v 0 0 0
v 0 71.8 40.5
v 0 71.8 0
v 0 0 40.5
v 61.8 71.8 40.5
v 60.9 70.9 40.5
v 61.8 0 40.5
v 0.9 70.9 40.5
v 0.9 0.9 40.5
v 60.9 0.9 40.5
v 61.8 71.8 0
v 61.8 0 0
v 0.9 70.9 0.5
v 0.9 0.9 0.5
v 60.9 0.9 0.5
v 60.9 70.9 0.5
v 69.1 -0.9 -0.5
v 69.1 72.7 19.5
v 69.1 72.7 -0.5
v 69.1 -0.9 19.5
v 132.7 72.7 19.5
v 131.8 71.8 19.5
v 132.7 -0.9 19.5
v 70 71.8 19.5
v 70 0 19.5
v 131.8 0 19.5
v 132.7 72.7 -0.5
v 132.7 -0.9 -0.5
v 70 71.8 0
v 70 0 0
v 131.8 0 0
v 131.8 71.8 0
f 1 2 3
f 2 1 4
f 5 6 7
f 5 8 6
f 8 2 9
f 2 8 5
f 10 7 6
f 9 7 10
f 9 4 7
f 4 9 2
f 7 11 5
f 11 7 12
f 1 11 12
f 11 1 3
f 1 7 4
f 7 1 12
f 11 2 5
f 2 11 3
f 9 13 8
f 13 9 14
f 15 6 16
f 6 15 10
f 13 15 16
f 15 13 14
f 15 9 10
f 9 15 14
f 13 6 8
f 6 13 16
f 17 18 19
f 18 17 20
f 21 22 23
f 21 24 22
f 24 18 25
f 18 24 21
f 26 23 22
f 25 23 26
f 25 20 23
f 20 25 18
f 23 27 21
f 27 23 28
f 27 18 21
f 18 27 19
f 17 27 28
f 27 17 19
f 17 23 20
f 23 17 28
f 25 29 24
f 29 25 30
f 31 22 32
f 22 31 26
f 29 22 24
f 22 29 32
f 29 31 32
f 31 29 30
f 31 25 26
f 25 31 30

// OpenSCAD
first_layer_height = 0.20;
layer_height = 0.15;
layer_width = 0.45;

$fn = 64;

wall_thickness = 2*layer_width;
bottom_thickness = first_layer_height + 2*layer_height;

obj_x = 60;
obj_y = 70;
obj_z = 40;

difference() {
    cube([obj_x+2*wall_thickness,obj_y+2*wall_thickness,obj_z+bottom_thickness]);
    
    translate([wall_thickness, wall_thickness, bottom_thickness])
    cube([obj_x,obj_y,obj_z]);
}

translate([70,0,0])
#difference() {
    translate([-wall_thickness, -wall_thickness, -bottom_thickness])
    cube([obj_x+4*wall_thickness,obj_y+4*wall_thickness,obj_z/2]);
    
    cube([obj_x+2*wall_thickness,obj_y+2*wall_thickness,obj_z+bottom_thickness]);
}
